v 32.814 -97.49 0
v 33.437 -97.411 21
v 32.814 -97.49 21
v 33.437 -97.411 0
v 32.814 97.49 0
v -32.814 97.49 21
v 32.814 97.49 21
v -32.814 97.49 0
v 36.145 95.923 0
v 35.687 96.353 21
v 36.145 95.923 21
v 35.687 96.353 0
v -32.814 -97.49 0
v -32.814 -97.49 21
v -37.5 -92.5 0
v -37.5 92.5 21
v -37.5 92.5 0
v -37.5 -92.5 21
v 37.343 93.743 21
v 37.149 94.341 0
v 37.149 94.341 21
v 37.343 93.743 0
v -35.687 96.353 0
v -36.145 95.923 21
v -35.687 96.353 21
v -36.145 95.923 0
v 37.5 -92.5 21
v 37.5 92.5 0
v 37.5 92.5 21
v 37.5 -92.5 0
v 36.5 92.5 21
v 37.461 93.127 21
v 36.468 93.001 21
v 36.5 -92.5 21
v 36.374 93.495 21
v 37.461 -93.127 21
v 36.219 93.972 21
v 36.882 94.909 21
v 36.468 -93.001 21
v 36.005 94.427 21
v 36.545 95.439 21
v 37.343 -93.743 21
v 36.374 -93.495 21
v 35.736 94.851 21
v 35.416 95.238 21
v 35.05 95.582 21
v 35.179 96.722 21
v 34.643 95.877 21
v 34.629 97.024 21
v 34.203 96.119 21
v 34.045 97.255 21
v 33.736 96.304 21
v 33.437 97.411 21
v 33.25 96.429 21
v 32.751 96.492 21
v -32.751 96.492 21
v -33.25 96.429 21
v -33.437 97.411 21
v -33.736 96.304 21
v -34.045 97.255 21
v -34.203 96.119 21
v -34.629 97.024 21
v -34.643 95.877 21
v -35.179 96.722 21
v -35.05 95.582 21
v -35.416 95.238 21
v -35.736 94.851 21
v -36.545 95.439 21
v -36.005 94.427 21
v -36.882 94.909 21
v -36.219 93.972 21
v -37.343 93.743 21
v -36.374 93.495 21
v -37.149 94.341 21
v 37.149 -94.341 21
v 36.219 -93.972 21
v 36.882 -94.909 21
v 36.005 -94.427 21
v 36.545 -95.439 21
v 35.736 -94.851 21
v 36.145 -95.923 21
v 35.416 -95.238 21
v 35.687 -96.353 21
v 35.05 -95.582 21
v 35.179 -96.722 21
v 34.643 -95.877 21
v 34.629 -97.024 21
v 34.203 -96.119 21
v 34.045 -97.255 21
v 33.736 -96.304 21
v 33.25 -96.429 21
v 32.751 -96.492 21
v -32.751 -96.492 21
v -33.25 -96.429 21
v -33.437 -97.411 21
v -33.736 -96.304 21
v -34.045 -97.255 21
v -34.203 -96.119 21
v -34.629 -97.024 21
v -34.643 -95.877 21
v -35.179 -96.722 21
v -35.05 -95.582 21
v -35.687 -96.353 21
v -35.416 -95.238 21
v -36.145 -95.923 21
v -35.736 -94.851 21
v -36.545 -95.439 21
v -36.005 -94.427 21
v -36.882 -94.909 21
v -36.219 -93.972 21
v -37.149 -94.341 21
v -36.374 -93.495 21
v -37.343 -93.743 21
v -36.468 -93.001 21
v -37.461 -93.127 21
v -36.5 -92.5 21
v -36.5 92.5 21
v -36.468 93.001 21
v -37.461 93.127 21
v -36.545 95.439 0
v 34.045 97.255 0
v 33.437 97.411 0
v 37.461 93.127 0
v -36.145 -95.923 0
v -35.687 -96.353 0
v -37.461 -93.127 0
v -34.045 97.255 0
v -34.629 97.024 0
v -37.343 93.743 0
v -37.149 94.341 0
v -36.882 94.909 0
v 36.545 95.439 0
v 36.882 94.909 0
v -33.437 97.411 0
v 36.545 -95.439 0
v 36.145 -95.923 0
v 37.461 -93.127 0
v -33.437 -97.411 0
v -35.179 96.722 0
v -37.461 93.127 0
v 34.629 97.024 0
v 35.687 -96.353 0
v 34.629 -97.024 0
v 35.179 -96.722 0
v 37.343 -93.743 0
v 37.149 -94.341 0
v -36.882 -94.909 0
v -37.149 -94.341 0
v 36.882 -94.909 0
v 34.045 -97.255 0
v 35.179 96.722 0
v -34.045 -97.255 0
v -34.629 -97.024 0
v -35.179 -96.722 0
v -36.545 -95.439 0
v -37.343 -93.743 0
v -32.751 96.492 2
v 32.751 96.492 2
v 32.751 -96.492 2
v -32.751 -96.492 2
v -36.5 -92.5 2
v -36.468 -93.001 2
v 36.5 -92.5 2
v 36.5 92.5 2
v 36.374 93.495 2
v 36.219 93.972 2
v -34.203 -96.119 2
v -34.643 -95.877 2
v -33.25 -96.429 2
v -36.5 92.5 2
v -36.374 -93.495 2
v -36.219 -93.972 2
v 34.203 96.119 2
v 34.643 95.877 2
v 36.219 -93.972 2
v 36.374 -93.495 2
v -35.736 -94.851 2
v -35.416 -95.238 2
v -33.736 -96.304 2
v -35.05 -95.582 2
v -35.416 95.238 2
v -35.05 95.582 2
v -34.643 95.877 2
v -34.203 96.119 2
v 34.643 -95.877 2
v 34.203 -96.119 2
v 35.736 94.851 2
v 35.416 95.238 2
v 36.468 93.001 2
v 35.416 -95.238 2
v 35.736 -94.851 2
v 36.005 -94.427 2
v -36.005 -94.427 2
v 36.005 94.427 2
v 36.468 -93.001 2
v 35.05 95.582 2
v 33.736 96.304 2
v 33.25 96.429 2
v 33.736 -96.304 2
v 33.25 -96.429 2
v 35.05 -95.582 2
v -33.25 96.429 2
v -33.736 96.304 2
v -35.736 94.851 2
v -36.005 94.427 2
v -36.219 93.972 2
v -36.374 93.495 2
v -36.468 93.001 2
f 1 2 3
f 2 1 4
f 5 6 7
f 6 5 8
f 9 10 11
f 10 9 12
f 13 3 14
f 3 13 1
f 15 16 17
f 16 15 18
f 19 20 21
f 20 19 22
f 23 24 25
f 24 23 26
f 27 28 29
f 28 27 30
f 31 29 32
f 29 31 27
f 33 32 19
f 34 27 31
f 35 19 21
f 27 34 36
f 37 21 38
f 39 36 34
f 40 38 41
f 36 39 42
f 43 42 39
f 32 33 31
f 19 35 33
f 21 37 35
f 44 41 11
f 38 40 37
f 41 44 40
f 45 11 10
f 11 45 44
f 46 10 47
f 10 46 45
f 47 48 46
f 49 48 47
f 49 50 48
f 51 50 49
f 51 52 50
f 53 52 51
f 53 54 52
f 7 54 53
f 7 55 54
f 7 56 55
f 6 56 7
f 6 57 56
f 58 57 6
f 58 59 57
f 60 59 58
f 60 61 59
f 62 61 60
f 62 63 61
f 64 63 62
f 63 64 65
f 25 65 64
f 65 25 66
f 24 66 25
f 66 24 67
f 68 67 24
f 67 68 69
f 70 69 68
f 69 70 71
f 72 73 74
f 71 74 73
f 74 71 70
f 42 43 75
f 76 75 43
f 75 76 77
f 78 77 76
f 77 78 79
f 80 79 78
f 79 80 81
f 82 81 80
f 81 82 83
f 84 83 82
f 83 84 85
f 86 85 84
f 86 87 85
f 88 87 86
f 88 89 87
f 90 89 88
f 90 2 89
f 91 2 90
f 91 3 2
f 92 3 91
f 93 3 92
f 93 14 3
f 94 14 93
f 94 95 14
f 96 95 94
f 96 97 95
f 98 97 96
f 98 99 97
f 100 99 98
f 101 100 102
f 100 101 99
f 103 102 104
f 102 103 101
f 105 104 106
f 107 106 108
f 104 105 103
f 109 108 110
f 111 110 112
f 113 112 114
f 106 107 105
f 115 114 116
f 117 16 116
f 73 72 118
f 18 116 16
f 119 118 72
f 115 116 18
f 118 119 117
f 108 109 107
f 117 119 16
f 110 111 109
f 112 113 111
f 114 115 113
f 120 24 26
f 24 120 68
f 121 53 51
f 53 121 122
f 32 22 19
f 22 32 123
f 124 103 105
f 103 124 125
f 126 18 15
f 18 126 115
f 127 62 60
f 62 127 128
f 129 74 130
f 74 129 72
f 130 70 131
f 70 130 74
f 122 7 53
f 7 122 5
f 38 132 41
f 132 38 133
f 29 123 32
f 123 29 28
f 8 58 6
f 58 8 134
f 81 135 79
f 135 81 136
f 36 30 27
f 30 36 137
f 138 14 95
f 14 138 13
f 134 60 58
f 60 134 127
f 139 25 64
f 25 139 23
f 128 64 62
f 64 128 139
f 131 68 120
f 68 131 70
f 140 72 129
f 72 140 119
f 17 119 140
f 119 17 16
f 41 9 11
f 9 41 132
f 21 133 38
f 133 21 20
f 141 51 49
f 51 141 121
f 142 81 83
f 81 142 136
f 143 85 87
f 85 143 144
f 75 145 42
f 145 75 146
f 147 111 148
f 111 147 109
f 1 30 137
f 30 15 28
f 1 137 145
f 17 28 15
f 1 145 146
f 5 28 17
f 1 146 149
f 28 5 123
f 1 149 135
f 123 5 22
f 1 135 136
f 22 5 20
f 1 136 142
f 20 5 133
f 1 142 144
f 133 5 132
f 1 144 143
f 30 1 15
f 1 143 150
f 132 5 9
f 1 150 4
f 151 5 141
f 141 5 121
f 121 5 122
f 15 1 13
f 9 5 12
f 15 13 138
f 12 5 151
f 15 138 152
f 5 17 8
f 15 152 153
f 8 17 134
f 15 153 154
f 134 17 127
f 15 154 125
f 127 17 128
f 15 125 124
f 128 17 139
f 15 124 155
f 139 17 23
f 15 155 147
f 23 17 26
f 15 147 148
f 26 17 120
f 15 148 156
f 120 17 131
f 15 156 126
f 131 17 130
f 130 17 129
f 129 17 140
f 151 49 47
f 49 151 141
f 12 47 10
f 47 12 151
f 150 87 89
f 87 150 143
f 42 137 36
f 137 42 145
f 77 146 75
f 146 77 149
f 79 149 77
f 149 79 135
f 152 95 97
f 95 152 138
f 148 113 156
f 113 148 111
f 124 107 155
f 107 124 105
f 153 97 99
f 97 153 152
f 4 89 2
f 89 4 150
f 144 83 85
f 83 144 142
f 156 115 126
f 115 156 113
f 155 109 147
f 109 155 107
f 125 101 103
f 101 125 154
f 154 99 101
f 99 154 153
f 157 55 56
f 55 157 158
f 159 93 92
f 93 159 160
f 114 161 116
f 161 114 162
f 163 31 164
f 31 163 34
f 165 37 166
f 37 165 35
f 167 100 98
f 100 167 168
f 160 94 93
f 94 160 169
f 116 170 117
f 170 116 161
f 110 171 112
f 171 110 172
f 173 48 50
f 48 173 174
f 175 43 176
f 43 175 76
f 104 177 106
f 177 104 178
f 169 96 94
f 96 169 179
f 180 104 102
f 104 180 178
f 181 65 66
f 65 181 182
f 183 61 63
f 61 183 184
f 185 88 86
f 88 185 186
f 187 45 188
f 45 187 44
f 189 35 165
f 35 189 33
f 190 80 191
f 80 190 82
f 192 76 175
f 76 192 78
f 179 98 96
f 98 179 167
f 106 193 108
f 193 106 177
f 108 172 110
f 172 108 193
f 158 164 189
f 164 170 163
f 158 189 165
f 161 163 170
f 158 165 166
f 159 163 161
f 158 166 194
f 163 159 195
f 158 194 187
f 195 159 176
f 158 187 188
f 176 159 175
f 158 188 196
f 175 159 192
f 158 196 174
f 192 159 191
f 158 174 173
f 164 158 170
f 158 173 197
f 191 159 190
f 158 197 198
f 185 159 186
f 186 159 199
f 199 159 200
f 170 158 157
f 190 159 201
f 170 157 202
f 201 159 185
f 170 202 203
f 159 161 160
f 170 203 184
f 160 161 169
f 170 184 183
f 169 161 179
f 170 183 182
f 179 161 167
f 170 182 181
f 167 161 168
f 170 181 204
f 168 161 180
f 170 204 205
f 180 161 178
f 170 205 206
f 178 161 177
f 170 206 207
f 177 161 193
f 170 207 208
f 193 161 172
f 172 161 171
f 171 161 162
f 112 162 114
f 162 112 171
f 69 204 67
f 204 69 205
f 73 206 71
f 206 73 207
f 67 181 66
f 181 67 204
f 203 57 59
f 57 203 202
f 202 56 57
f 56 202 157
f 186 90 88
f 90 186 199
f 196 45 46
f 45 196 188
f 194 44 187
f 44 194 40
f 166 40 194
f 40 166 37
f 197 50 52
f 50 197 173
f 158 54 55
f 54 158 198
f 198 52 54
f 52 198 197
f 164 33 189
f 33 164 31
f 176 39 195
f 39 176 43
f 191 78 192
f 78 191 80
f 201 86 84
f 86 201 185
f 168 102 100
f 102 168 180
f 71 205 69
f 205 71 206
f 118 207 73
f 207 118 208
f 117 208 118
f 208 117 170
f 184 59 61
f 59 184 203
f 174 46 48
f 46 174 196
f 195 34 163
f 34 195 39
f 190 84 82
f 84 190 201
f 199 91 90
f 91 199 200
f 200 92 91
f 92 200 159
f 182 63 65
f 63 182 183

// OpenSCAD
$fn = 50;


difference() {
	union() {
		hull() {
			translate(v = [-32.5000000000, 92.5000000000, 0]) {
				cylinder(h = 21, r = 5);
			}
			translate(v = [32.5000000000, 92.5000000000, 0]) {
				cylinder(h = 21, r = 5);
			}
			translate(v = [-32.5000000000, -92.5000000000, 0]) {
				cylinder(h = 21, r = 5);
			}
			translate(v = [32.5000000000, -92.5000000000, 0]) {
				cylinder(h = 21, r = 5);
			}
		}
	}
	union() {
		translate(v = [0, 0, 2]) {
			hull() {
				translate(v = [-32.5000000000, 92.5000000000, 0]) {
					cylinder(h = 19, r = 4);
				}
				translate(v = [32.5000000000, 92.5000000000, 0]) {
					cylinder(h = 19, r = 4);
				}
				translate(v = [-32.5000000000, -92.5000000000, 0]) {
					cylinder(h = 19, r = 4);
				}
				translate(v = [32.5000000000, -92.5000000000, 0]) {
					cylinder(h = 19, r = 4);
				}
			}
		}
	}
}
